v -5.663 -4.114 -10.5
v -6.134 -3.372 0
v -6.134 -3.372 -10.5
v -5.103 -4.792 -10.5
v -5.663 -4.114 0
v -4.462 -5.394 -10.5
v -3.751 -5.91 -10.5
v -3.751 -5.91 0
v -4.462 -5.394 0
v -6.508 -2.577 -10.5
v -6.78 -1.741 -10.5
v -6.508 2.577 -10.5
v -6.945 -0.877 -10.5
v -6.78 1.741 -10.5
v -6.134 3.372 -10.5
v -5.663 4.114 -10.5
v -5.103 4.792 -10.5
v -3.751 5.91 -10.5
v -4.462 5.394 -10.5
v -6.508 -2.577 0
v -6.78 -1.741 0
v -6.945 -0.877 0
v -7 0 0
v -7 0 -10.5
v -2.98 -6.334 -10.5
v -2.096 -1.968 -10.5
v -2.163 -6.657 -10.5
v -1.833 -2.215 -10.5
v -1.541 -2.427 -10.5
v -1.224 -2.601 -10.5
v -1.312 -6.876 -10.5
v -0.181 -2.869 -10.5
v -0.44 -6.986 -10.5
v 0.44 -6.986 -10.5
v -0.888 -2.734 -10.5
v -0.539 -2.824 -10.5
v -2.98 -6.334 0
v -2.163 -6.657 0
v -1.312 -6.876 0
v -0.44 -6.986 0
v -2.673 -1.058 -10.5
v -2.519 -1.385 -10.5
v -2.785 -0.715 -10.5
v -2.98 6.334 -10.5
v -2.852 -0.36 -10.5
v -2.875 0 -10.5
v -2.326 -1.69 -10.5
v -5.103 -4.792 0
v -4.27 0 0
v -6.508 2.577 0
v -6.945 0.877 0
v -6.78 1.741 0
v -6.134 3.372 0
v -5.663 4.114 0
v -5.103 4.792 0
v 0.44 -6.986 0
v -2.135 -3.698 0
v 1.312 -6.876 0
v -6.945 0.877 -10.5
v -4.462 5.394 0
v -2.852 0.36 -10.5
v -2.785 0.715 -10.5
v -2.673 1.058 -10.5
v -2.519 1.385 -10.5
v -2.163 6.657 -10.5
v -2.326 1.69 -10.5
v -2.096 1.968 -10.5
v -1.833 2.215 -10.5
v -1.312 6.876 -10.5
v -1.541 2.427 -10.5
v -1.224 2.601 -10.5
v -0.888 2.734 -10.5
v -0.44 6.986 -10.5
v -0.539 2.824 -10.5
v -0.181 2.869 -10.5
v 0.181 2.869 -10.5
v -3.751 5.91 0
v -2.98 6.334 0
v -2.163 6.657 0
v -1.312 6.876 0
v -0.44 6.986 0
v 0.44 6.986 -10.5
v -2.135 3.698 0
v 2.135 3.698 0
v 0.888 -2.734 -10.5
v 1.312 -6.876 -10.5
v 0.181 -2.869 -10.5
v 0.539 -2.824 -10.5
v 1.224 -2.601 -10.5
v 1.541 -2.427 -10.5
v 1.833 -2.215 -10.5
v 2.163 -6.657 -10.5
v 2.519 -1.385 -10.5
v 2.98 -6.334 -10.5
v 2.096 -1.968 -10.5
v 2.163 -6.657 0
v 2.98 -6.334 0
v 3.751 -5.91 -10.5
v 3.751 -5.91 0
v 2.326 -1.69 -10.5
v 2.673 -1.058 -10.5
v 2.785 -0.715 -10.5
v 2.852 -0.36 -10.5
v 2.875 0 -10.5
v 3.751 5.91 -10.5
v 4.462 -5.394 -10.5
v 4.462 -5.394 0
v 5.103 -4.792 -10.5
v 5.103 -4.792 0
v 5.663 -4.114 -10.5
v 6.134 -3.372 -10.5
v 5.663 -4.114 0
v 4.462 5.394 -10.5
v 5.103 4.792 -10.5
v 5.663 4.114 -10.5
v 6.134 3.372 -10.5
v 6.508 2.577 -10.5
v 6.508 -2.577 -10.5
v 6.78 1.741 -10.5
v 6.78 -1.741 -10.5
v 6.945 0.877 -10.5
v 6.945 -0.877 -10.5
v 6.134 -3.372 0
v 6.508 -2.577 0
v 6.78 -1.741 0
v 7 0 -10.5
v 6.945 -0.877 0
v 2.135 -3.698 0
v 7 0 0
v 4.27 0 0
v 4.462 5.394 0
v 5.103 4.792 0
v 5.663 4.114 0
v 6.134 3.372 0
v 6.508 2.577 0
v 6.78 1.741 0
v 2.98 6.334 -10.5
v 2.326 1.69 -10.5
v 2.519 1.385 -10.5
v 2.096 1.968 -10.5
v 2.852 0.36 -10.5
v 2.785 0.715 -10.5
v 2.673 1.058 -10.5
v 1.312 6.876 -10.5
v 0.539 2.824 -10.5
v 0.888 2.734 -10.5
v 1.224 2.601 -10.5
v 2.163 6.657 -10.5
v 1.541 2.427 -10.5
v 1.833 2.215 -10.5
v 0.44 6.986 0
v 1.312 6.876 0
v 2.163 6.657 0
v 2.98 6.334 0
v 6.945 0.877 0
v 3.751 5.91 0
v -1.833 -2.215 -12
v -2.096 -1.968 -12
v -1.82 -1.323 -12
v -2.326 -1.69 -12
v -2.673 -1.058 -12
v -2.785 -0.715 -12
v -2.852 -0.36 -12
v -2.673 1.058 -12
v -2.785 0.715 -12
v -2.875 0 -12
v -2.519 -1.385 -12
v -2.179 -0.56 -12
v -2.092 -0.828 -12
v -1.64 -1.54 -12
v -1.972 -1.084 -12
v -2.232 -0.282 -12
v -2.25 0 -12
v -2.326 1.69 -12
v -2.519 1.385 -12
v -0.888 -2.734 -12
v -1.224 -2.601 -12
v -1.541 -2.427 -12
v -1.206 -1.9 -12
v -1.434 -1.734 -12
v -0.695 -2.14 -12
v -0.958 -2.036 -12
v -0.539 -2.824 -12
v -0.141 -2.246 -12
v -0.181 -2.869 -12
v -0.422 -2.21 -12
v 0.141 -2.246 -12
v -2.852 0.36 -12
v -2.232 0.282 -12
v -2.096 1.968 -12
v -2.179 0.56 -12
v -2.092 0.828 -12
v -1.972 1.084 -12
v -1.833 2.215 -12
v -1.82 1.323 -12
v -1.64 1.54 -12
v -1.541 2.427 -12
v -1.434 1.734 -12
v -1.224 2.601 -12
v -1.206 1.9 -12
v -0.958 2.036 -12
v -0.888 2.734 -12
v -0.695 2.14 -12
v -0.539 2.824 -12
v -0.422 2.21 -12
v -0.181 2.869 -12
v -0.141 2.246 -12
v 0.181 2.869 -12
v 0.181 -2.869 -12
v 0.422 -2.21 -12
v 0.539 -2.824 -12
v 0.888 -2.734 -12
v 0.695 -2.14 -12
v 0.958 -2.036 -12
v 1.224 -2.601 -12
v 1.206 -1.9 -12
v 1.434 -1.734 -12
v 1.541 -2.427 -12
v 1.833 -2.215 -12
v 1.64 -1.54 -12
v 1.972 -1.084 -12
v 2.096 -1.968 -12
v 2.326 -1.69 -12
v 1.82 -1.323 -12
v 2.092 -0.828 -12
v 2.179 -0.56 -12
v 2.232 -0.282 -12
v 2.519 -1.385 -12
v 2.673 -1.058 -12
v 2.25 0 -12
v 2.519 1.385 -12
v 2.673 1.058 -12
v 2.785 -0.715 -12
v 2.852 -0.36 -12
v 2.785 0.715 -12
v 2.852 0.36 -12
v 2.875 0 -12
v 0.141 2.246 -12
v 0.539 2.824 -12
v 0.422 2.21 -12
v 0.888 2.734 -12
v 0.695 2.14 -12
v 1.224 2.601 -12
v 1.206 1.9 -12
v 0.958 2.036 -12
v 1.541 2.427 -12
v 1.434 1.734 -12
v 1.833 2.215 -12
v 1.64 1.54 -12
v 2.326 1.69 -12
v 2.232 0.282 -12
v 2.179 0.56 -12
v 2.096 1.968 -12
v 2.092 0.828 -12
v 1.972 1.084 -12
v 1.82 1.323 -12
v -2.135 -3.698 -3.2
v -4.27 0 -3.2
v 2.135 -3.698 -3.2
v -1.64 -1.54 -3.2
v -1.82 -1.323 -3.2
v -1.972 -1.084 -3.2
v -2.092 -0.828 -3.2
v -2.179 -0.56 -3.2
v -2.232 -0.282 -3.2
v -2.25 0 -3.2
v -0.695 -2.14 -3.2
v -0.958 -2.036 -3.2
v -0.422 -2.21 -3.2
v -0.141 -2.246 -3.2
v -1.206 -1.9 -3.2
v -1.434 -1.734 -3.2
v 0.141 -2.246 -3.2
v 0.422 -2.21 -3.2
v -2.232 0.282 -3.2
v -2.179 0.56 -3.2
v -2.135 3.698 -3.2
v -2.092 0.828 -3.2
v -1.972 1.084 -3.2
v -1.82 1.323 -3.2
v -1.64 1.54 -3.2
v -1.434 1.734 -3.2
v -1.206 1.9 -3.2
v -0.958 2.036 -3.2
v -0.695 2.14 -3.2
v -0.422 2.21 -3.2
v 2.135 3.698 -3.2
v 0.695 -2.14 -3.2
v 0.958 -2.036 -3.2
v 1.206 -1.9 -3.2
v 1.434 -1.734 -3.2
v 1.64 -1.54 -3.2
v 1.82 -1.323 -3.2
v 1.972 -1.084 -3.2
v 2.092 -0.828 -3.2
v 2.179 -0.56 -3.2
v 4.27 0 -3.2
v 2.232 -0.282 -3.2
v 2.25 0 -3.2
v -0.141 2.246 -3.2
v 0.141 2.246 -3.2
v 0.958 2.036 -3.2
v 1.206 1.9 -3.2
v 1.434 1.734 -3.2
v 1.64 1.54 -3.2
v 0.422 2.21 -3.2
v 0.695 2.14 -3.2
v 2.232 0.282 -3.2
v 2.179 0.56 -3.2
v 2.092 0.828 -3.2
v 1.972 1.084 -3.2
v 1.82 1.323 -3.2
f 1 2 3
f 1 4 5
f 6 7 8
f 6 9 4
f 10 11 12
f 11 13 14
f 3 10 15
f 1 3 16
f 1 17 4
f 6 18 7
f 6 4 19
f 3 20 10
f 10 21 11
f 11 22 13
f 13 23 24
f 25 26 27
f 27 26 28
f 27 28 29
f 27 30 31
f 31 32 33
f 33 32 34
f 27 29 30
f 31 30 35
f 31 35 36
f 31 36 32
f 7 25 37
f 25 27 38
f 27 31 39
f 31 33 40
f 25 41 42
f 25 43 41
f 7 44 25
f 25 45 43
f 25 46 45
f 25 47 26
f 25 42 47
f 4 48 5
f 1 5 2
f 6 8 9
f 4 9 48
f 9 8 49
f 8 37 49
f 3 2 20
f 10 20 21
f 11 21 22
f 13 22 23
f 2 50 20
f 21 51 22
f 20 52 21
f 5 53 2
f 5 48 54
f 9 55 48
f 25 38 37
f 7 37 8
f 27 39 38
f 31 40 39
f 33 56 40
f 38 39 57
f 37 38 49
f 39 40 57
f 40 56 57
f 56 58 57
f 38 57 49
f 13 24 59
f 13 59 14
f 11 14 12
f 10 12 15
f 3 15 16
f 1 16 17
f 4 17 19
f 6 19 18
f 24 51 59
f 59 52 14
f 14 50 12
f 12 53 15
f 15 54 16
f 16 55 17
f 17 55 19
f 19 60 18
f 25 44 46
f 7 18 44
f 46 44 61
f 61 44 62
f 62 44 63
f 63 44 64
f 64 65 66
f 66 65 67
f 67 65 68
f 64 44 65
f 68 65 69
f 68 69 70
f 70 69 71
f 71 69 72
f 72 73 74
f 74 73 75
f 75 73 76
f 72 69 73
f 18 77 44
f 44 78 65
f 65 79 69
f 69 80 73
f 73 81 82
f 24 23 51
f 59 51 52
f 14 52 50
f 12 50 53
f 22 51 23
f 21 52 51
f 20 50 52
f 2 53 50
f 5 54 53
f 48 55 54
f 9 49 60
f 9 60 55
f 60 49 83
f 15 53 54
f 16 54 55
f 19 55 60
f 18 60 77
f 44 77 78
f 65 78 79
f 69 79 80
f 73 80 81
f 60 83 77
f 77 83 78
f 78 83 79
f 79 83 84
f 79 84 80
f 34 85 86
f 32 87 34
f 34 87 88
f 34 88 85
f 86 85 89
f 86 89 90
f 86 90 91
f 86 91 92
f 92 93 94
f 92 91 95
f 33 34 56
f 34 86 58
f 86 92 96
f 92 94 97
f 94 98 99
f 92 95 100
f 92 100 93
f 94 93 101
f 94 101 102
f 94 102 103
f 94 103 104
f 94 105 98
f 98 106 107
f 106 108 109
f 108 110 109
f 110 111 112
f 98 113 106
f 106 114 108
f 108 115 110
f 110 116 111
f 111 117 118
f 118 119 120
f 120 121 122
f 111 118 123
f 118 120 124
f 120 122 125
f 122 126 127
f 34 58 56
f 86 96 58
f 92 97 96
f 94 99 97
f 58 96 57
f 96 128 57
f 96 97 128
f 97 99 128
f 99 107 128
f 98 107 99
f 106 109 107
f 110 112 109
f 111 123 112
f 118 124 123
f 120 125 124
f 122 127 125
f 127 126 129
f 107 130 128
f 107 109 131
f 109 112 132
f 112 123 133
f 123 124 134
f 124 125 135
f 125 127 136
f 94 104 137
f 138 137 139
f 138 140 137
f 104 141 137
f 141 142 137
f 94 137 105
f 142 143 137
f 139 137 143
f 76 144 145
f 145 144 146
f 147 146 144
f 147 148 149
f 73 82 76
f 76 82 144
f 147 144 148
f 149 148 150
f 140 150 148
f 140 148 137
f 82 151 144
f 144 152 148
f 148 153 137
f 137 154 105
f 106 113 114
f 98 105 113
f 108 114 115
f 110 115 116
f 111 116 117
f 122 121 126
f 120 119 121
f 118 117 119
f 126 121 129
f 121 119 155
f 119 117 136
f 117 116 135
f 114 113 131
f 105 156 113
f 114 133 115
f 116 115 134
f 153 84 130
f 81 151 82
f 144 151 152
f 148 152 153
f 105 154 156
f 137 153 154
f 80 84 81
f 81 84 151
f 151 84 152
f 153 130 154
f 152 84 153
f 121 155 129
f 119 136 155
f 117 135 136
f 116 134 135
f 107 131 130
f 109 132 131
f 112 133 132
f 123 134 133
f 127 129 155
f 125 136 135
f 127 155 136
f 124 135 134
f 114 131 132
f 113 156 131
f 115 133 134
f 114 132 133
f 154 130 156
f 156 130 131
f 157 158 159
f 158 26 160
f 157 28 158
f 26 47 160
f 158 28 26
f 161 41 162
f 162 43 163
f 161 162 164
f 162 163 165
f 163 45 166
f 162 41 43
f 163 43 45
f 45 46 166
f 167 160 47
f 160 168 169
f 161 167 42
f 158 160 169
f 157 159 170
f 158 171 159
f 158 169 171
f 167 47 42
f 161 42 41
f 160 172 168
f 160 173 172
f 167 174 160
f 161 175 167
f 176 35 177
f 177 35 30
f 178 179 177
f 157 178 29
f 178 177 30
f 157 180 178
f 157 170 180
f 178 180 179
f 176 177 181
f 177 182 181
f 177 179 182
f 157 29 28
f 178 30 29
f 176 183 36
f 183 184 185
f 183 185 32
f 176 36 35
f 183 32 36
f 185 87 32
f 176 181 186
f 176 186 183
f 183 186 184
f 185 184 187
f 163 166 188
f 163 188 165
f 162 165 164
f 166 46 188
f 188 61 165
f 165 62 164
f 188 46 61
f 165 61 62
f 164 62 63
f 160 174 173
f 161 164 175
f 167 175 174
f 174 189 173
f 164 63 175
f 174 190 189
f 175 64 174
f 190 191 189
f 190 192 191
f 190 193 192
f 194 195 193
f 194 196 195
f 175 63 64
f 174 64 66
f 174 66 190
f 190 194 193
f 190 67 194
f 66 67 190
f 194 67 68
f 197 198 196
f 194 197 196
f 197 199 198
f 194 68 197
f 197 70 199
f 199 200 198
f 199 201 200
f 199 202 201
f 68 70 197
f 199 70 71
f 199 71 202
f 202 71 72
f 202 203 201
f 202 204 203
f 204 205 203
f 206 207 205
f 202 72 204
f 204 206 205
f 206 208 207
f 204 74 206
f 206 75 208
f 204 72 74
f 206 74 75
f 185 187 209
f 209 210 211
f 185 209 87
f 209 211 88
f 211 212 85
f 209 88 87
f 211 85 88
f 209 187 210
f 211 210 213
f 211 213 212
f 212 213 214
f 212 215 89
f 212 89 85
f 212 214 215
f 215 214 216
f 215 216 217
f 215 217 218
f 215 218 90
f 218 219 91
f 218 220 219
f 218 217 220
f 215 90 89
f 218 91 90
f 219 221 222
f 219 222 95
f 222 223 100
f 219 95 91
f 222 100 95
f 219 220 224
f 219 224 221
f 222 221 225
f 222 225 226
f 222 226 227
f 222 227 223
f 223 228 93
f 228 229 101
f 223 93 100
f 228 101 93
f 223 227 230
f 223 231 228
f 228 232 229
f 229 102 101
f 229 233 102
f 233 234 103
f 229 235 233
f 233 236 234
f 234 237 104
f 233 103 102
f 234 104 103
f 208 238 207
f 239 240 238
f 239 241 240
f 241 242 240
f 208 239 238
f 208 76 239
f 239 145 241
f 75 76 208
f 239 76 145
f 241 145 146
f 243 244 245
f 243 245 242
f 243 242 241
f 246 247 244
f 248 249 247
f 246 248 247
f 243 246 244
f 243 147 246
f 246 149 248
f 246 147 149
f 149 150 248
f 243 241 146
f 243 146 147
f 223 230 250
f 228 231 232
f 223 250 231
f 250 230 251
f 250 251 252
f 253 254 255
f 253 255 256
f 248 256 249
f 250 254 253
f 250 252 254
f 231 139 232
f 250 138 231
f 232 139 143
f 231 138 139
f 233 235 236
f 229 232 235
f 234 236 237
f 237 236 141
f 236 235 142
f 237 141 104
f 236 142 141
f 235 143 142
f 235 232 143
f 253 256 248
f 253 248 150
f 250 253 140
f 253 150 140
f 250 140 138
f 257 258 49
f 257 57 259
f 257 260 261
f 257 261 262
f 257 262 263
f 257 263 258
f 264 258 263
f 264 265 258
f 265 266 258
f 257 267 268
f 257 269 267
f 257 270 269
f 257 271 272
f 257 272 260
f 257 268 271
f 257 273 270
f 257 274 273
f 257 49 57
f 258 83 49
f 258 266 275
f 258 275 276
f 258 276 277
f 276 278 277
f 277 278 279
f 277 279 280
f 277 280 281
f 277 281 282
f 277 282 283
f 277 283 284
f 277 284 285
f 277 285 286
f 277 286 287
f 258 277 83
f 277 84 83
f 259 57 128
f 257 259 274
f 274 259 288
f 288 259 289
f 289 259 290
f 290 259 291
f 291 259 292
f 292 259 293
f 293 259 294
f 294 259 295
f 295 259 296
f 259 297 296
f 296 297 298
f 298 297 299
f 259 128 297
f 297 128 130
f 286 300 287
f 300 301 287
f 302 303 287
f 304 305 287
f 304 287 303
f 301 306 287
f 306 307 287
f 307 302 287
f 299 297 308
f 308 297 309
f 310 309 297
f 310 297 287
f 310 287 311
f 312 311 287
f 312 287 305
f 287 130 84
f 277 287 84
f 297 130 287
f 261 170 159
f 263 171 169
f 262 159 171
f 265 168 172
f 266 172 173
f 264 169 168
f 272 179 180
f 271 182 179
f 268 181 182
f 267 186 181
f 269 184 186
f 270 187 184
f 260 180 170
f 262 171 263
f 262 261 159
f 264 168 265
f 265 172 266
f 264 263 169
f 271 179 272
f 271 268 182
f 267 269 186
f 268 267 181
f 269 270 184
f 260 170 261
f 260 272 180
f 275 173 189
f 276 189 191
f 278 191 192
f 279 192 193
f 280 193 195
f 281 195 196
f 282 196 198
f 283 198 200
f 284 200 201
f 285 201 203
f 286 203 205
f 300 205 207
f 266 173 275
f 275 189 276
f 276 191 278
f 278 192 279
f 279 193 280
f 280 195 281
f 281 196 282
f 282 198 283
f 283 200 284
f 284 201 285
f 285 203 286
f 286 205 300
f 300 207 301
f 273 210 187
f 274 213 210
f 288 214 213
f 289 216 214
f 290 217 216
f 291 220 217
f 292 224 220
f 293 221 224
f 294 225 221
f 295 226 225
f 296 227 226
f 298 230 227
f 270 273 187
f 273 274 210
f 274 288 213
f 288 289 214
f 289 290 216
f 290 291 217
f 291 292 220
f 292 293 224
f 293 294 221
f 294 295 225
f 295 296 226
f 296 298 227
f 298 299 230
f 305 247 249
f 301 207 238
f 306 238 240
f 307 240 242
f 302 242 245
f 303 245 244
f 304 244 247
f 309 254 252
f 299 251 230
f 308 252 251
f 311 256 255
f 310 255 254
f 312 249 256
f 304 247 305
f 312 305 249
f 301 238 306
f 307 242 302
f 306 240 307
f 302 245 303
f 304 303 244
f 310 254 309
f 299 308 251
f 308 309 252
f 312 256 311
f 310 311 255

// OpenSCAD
$fn = 50;

difference() {
	union() {
		translate(v = [0, 0, -10.5]) {
			cylinder(h = 10.5, r = 7.0);
		}
		#translate(v = [0, 0, -12.0]) {
			cylinder(h = 12, r = 2.875);
		}
	}
	union() {
		translate(v = [0, 0, 0]) {
			rotate(a = [0, 0, 0]) {
				difference() {
					union() {
						translate(v = [0, 0, -3.2]) {
							linear_extrude(height = 3.2) {
								polygon(points = [[4.2698, 0.0], [2.1349000000000005, 3.697755269078796], [-2.134899999999999, 3.6977552690787965], [-4.2698, 5.228996902999369e-16], [-2.134900000000002, -3.6977552690787956], [2.1348999999999974, -3.697755269078798]]);
							}
						}
					}
					union();
				}
			}
		}
		#translate(v = [0, 0, -100.0]) {
			cylinder(h = 200, r = 2.25);
		}
	}
}
